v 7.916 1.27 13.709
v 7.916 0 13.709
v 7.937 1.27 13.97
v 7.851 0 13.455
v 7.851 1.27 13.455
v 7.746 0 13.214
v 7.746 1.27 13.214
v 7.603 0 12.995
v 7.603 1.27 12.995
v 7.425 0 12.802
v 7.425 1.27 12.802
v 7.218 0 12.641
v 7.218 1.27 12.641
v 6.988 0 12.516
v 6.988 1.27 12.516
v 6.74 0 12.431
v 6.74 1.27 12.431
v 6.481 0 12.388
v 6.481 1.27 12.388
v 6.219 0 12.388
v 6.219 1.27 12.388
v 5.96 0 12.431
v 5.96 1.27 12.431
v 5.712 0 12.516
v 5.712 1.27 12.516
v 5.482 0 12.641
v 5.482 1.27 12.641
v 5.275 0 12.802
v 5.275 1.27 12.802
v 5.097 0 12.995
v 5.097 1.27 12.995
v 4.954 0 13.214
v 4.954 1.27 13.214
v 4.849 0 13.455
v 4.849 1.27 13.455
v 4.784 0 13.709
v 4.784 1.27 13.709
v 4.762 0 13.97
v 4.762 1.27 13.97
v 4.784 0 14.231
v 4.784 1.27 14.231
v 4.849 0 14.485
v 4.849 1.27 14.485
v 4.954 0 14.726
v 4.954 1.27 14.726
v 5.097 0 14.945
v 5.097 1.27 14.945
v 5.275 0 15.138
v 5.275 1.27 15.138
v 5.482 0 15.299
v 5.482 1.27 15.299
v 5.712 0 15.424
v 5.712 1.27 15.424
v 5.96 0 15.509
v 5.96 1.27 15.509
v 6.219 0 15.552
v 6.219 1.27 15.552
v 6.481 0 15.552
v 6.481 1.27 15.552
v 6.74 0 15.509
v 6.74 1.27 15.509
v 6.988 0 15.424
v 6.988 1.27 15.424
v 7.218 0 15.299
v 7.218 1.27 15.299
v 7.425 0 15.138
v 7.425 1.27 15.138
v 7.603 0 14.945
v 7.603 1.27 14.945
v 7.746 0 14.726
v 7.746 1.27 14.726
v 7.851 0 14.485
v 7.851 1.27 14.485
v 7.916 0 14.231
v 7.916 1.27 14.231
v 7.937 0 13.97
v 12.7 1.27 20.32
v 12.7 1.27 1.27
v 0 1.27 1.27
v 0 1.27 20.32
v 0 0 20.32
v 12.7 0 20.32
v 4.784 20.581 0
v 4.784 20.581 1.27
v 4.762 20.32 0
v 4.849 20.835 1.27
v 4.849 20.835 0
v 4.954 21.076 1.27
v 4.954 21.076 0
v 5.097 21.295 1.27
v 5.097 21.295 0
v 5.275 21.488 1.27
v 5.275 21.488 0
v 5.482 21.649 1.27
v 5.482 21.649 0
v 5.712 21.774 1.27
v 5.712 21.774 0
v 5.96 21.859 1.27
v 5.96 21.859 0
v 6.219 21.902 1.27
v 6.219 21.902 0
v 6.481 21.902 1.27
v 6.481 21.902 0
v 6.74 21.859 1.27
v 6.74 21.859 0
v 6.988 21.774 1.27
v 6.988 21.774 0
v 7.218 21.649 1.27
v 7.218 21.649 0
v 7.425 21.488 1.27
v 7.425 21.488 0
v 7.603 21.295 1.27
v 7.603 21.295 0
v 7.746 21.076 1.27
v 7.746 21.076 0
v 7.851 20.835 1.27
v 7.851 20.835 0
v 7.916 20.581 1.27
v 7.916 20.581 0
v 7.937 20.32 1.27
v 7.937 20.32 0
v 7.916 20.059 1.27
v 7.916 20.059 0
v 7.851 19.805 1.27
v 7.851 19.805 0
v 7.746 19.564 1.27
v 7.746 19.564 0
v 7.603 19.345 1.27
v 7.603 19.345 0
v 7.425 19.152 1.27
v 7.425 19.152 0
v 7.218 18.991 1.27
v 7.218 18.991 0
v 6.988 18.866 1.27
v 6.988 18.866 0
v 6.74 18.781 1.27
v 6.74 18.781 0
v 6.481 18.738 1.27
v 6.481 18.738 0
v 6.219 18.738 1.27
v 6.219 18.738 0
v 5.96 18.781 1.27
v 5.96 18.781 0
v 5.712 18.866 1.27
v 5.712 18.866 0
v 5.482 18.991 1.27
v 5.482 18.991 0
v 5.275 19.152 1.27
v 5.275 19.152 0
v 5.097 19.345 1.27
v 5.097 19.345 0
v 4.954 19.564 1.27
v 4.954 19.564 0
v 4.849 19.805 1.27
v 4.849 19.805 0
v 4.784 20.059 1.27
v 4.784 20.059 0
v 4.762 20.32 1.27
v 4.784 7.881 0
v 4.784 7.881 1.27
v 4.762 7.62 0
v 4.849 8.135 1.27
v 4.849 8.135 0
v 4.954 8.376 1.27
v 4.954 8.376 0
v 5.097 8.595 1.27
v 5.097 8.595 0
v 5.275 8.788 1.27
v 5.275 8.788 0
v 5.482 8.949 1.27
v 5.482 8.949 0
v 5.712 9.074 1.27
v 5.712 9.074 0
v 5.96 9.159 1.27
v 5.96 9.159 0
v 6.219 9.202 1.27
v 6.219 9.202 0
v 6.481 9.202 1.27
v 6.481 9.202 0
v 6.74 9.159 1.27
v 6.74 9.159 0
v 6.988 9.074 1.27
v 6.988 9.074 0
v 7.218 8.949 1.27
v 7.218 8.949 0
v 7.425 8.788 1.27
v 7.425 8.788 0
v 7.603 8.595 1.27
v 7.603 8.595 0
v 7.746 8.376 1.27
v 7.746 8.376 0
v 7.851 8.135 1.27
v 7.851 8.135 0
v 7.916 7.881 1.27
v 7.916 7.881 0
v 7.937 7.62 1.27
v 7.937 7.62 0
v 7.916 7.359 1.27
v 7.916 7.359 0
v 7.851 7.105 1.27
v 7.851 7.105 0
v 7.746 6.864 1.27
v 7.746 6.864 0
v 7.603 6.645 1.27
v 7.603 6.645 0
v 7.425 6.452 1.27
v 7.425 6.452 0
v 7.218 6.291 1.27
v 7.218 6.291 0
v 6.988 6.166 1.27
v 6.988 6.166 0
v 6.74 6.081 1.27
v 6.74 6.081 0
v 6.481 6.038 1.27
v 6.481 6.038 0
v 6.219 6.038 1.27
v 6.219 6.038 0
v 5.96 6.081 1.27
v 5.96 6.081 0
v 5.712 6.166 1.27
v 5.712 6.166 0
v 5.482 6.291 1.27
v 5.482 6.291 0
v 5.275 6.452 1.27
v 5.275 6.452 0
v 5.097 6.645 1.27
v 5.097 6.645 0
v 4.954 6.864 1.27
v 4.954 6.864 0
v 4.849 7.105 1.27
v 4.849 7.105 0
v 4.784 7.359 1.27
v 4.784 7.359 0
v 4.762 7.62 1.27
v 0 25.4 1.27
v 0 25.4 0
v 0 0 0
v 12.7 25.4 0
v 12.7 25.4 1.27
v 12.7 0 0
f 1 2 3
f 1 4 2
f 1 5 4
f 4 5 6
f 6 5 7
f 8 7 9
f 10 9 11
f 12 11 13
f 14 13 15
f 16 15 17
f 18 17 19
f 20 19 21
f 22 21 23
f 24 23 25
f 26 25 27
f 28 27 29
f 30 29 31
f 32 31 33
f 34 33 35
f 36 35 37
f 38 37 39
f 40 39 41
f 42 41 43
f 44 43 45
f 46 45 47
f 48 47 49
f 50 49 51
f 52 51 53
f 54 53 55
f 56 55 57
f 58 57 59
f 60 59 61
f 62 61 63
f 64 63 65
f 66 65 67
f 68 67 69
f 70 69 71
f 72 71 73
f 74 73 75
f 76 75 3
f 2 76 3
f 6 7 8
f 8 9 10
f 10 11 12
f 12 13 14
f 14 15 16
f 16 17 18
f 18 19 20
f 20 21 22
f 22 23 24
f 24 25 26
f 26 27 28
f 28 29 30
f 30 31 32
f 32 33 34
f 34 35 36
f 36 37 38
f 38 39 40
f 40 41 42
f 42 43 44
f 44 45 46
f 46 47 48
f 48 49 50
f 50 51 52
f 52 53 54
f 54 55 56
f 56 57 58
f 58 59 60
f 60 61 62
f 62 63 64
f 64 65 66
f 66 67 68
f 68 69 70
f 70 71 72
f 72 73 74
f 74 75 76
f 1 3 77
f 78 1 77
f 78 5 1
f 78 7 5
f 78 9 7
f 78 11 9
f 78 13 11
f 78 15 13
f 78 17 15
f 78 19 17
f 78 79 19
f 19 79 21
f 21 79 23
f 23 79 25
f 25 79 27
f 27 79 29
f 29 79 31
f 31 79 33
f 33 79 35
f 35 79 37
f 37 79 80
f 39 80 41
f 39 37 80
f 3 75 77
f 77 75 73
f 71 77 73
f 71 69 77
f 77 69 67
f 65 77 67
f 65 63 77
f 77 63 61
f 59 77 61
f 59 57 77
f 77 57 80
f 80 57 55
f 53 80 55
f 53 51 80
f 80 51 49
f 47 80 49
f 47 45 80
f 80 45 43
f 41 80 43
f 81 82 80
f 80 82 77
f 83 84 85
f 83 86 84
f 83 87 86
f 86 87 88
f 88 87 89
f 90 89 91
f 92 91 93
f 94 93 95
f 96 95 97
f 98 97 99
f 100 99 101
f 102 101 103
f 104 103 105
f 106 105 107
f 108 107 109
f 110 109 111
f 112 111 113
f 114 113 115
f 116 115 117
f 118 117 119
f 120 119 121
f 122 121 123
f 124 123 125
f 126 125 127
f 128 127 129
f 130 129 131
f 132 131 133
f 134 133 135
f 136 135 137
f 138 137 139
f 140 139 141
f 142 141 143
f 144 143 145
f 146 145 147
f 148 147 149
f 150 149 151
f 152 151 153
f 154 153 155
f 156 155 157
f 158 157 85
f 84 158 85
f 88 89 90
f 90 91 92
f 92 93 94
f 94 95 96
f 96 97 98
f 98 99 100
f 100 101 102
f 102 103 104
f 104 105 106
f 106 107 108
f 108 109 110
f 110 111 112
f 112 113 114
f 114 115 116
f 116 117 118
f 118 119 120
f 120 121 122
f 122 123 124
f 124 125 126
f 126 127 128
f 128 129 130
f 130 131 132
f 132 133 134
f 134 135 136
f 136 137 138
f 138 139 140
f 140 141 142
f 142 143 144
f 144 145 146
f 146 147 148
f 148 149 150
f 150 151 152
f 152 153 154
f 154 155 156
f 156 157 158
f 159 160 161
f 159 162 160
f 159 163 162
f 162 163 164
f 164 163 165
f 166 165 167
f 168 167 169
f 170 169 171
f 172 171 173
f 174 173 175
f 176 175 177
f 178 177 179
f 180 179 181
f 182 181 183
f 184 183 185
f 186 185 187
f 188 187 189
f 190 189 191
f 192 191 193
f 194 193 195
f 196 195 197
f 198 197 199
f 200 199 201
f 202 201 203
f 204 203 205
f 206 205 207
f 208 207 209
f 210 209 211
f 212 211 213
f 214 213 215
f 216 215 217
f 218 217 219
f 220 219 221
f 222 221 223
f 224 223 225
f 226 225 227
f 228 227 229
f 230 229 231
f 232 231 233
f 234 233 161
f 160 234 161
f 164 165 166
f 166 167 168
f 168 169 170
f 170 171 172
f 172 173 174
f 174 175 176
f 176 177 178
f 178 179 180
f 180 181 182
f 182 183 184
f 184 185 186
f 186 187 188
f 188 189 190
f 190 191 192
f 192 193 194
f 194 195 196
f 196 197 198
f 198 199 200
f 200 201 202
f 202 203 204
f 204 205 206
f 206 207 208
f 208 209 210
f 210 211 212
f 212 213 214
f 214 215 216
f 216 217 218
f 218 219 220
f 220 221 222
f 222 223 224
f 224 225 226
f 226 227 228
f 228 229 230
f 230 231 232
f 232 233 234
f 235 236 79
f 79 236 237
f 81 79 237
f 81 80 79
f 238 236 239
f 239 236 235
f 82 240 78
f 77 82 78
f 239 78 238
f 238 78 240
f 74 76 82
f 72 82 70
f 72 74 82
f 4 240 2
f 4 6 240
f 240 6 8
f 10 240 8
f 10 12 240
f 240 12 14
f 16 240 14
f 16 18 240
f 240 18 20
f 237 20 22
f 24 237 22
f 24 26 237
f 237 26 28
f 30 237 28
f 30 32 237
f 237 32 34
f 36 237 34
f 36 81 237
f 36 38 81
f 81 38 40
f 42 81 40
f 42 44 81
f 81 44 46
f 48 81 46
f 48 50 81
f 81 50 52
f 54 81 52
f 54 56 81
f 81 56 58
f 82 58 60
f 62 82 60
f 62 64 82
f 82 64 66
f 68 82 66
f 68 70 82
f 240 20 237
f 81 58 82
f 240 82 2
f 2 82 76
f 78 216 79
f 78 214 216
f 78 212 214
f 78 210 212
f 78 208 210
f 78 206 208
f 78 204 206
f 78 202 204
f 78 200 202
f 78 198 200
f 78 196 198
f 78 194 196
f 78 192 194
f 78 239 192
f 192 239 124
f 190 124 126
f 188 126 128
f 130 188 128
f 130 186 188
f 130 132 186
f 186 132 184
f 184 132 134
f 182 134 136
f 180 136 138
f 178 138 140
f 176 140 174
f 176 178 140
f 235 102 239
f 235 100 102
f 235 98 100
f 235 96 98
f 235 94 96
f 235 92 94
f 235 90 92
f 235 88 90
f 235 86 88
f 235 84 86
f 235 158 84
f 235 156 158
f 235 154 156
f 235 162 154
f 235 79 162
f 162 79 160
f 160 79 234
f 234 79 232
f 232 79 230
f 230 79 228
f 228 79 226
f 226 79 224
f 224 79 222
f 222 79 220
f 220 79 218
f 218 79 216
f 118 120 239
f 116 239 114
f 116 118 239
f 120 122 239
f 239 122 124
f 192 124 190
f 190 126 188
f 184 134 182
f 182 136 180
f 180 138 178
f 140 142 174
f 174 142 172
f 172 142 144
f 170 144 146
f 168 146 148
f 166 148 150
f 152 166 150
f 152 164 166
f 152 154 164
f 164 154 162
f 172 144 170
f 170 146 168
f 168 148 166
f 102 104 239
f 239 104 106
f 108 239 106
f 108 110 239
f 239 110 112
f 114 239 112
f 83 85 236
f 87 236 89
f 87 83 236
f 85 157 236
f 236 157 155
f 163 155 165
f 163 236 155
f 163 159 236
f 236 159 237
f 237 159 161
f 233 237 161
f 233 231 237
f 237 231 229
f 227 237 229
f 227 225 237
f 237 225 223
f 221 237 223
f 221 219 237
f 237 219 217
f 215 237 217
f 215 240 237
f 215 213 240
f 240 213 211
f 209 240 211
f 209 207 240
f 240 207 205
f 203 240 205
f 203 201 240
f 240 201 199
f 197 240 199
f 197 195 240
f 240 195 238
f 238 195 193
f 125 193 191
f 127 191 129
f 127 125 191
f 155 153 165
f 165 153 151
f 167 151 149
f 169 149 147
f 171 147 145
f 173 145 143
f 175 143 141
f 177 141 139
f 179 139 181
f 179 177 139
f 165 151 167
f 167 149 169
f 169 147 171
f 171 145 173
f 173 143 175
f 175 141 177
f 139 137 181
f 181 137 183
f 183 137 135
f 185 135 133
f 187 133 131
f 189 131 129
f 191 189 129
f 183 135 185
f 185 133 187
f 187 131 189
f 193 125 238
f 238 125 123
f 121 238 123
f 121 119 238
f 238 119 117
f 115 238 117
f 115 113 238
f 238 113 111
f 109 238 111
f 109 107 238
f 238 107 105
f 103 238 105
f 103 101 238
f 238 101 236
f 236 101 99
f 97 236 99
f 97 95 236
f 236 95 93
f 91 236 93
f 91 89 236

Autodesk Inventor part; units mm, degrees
ref_plane "YZ Plane" through (0, 0, 0) normal (1, 0, 0) x (0, 1, 0)
ref_plane "XZ Plane" through (0, 0, 0) normal (0, 1, 0) x (-1, 0, 0)
ref_plane "XY Plane" through (0, 0, 0) normal (0, 0, 1) x (1, 0, 0)
sketch "Sketch1" plane through (0, 0, 0) normal (0, 0, 1) x (1, 0, 0)
  line L0 (0, 0) -> (12.7, 0)
  line L1 (12.7, 0) -> (12.7, 25.4)
  line L2 (12.7, 25.4) -> (0, 25.4)
  line L3 (0, 25.4) -> (0, 0)
  dimension "d0" = 25.4
  dimension "d1" = 12.7
extrude "Extrusion1" add sketch "Sketch1" along normal blind 1.27
sketch "Sketch2" plane through (0, 0, 1.27) normal (0, 0, 1) x (1, 0, 0)
  line L0 (6.35, -14.9929) -> (6.35, 30.5291) construction
  line L1 (12.7, 0) -> (12.7, 25.4) construction
  line L2 (0, 0) -> (12.7, 0) projected
  point P0 (6.35, 20.32)
  point P1 (6.35, 7.62)
  dimension "d4" = 6.35
  dimension "d5" = 7.62
  dimension "d6" = 12.7
hole "Hole1" at (6.35, 20.32, 1.27) at (6.35, 7.62, 1.27) direction (0, 0, -1) diameter 3.175 depth 25.4 tip angle 118
sketch "Sketch3" plane through (0, 0, 1.27) normal (0, 0, 1) x (1, 0, 0)
  line L0 (12.7, 0) -> (12.7, 25.4) projected
  line L1 (0, 0) -> (12.7, 0)
  line L2 (12.7, 0) -> (12.7, 1.27)
  line L3 (12.7, 1.27) -> (0, 1.27)
  line L4 (0, 1.27) -> (0, 0)
  dimension "d14" = 1.27
extrude "Extrusion2" add sketch "Sketch3" along normal blind 19.05
sketch "Sketch4" plane through (0, 0, 0) normal (0, -1, 0) x (1, 0, 0)
  line L0 (6.35, -12.0636) -> (6.35, 31.9717) construction
  line L1 (12.7, 0) -> (12.7, 20.32) construction
  circle A0 centre (6.35, 13.97) radius 1.5875
  line L2 (0, 20.32) -> (12.7, 20.32) construction
  point P0 (0, 0)
  dimension "d17" = 6.35
  dimension "d18" = 3.175
  dimension "d19" = 6.35
extrude "Extrusion3" cut sketch "Sketch4" against normal blind 19.05
properties part number "000204"
